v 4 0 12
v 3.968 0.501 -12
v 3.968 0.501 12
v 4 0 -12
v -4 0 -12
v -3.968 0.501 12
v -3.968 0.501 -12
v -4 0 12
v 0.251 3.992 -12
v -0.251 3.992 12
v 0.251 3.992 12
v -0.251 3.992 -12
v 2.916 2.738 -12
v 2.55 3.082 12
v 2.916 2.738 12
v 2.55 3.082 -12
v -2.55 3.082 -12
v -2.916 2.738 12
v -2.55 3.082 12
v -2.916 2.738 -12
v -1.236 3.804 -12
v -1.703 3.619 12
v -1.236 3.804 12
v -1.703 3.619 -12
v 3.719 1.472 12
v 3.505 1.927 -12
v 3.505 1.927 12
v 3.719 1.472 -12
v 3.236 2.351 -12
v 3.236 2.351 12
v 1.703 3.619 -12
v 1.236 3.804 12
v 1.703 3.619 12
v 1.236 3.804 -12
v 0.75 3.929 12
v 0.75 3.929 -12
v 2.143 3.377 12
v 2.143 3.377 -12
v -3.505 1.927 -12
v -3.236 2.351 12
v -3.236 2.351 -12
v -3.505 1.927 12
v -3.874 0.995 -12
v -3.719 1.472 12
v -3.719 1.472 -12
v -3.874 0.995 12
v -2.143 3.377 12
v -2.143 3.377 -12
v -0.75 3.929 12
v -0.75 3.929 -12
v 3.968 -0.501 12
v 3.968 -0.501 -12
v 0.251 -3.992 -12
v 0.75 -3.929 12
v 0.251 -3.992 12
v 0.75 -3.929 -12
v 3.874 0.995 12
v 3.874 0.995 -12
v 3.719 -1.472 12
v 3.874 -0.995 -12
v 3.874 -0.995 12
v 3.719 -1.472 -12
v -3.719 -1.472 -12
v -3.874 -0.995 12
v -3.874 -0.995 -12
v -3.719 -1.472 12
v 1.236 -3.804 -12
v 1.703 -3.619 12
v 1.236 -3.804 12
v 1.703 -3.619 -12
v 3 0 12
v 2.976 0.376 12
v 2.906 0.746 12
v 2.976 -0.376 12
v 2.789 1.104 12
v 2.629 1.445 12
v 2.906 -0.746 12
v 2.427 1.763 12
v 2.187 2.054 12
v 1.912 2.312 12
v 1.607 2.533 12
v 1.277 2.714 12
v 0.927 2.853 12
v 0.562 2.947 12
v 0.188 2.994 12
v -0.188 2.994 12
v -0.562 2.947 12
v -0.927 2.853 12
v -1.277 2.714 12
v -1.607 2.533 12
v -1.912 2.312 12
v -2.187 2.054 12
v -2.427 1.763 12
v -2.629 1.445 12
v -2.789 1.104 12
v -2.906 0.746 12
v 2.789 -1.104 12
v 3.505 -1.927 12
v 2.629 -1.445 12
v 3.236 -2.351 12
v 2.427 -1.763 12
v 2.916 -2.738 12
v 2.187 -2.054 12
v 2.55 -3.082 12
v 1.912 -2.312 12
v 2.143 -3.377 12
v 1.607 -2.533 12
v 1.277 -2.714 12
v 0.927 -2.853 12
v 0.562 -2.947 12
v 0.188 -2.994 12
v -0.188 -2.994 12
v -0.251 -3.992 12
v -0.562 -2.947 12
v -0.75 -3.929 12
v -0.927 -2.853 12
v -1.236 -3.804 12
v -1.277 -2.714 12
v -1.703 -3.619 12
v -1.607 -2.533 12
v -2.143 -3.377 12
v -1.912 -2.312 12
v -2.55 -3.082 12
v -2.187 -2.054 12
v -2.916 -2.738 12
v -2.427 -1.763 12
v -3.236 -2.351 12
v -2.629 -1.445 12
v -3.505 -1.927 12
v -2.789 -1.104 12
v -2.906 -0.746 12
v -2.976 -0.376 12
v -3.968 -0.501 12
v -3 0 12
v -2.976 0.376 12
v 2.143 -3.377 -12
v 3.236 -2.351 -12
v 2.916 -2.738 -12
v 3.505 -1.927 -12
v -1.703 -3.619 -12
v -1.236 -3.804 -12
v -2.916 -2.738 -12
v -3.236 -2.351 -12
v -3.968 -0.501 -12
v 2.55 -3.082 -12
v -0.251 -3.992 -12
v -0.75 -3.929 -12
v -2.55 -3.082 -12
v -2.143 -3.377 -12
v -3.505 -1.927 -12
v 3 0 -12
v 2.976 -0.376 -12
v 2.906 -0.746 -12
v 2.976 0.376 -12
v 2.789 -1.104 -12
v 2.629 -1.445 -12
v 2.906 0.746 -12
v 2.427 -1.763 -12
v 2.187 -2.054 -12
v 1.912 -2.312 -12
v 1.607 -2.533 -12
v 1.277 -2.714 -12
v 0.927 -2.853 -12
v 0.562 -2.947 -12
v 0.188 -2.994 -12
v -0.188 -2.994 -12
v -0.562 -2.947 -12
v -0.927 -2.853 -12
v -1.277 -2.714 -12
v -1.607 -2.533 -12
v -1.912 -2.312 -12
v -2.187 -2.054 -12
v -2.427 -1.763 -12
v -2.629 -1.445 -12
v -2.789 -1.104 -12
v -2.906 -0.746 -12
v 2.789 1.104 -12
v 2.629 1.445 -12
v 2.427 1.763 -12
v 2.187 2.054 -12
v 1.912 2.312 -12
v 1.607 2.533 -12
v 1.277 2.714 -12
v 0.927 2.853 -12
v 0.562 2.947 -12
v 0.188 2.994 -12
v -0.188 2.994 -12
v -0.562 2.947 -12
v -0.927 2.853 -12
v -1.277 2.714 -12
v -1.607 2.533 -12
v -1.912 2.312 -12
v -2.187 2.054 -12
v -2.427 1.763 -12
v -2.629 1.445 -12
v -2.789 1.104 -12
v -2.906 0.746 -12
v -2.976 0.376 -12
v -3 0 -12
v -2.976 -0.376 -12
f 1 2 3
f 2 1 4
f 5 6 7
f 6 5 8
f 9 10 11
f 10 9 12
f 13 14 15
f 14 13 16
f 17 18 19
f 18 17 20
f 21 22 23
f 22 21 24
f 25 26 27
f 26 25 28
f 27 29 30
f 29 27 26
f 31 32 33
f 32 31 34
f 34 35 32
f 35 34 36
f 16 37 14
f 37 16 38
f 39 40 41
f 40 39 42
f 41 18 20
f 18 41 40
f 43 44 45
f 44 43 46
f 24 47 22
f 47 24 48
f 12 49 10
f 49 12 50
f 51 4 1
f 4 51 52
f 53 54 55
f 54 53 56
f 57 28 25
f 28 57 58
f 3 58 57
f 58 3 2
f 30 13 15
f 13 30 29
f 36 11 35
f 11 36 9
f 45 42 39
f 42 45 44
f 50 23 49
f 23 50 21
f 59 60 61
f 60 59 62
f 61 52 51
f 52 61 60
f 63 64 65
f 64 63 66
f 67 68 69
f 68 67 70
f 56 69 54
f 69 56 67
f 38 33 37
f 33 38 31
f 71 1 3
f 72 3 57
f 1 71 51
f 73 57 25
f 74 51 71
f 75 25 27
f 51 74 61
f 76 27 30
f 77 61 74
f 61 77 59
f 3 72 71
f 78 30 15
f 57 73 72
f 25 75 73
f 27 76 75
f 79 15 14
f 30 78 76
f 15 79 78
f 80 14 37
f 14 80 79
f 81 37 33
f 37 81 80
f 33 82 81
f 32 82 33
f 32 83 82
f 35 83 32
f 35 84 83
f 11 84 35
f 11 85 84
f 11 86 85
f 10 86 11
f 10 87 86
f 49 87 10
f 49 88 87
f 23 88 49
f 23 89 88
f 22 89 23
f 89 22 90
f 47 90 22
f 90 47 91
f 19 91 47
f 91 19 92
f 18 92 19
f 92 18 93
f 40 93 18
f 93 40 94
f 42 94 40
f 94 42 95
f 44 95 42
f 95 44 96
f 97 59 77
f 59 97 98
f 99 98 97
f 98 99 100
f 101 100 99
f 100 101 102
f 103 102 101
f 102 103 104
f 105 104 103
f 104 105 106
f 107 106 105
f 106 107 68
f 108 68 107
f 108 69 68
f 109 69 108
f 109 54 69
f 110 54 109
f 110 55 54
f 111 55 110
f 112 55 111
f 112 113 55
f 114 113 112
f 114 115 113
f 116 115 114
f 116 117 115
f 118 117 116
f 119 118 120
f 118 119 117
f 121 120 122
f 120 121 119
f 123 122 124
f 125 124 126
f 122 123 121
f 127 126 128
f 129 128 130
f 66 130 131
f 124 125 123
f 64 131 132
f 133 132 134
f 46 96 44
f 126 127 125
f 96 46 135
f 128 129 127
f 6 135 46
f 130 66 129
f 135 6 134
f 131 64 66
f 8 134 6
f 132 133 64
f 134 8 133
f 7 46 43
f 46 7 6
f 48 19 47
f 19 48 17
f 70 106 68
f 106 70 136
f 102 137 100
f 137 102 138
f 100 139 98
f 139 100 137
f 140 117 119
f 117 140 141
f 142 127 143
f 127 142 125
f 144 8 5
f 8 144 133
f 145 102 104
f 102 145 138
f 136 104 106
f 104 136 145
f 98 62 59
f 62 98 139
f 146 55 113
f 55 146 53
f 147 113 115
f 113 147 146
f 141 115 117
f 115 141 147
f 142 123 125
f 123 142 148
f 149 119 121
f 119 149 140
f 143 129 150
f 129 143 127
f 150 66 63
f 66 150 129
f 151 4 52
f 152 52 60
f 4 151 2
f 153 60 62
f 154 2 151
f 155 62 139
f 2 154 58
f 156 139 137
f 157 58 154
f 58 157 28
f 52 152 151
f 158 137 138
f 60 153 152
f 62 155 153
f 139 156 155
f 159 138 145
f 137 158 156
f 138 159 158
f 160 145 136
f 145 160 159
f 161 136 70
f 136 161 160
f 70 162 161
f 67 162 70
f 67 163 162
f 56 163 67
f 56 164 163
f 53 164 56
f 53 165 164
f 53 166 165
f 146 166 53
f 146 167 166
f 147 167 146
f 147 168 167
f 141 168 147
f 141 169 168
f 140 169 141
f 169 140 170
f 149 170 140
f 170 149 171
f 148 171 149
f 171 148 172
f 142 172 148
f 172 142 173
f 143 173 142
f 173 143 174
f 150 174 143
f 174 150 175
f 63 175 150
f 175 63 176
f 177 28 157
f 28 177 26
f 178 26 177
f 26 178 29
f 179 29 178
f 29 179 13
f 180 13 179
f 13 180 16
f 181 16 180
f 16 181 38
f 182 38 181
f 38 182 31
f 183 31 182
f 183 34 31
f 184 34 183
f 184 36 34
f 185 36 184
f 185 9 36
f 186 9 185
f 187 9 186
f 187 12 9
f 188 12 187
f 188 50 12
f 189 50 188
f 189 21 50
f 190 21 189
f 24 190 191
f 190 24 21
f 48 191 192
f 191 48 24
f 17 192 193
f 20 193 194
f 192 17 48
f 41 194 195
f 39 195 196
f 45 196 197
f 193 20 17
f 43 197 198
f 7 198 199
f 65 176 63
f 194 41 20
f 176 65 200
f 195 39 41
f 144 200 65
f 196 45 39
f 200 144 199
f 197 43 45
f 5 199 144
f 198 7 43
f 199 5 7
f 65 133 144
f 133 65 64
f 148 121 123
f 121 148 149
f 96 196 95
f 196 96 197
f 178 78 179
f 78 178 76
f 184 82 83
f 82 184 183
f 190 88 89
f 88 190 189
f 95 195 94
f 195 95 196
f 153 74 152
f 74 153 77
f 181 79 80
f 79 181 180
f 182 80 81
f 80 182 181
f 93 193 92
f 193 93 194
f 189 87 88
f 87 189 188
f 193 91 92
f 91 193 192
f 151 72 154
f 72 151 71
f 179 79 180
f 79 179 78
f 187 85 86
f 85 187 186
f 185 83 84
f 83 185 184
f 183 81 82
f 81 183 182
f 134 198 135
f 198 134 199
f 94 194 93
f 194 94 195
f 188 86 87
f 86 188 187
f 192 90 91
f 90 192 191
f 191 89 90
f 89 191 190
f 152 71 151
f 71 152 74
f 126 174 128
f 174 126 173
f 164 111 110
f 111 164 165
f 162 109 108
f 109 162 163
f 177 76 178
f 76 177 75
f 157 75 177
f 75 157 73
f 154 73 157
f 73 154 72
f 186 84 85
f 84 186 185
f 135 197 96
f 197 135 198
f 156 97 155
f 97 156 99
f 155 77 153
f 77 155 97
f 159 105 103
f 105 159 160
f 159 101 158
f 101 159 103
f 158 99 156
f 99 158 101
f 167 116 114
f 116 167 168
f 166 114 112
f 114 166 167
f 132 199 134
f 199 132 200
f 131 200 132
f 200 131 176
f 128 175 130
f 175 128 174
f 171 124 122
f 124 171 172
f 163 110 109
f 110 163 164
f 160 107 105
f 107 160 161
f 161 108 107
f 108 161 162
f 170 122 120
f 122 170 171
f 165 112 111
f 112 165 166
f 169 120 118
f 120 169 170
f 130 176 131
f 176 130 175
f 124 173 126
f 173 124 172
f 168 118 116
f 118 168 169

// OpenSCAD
$fn = 50;


difference() {
	union() {
		translate(v = [0, 0, -12.0000000000]) {
			cylinder(h = 24, r = 4.0000000000);
		}
	}
	union() {
		translate(v = [0, 0, -100.0000000000]) {
			cylinder(h = 200, r = 3.0000000000);
		}
	}
}
